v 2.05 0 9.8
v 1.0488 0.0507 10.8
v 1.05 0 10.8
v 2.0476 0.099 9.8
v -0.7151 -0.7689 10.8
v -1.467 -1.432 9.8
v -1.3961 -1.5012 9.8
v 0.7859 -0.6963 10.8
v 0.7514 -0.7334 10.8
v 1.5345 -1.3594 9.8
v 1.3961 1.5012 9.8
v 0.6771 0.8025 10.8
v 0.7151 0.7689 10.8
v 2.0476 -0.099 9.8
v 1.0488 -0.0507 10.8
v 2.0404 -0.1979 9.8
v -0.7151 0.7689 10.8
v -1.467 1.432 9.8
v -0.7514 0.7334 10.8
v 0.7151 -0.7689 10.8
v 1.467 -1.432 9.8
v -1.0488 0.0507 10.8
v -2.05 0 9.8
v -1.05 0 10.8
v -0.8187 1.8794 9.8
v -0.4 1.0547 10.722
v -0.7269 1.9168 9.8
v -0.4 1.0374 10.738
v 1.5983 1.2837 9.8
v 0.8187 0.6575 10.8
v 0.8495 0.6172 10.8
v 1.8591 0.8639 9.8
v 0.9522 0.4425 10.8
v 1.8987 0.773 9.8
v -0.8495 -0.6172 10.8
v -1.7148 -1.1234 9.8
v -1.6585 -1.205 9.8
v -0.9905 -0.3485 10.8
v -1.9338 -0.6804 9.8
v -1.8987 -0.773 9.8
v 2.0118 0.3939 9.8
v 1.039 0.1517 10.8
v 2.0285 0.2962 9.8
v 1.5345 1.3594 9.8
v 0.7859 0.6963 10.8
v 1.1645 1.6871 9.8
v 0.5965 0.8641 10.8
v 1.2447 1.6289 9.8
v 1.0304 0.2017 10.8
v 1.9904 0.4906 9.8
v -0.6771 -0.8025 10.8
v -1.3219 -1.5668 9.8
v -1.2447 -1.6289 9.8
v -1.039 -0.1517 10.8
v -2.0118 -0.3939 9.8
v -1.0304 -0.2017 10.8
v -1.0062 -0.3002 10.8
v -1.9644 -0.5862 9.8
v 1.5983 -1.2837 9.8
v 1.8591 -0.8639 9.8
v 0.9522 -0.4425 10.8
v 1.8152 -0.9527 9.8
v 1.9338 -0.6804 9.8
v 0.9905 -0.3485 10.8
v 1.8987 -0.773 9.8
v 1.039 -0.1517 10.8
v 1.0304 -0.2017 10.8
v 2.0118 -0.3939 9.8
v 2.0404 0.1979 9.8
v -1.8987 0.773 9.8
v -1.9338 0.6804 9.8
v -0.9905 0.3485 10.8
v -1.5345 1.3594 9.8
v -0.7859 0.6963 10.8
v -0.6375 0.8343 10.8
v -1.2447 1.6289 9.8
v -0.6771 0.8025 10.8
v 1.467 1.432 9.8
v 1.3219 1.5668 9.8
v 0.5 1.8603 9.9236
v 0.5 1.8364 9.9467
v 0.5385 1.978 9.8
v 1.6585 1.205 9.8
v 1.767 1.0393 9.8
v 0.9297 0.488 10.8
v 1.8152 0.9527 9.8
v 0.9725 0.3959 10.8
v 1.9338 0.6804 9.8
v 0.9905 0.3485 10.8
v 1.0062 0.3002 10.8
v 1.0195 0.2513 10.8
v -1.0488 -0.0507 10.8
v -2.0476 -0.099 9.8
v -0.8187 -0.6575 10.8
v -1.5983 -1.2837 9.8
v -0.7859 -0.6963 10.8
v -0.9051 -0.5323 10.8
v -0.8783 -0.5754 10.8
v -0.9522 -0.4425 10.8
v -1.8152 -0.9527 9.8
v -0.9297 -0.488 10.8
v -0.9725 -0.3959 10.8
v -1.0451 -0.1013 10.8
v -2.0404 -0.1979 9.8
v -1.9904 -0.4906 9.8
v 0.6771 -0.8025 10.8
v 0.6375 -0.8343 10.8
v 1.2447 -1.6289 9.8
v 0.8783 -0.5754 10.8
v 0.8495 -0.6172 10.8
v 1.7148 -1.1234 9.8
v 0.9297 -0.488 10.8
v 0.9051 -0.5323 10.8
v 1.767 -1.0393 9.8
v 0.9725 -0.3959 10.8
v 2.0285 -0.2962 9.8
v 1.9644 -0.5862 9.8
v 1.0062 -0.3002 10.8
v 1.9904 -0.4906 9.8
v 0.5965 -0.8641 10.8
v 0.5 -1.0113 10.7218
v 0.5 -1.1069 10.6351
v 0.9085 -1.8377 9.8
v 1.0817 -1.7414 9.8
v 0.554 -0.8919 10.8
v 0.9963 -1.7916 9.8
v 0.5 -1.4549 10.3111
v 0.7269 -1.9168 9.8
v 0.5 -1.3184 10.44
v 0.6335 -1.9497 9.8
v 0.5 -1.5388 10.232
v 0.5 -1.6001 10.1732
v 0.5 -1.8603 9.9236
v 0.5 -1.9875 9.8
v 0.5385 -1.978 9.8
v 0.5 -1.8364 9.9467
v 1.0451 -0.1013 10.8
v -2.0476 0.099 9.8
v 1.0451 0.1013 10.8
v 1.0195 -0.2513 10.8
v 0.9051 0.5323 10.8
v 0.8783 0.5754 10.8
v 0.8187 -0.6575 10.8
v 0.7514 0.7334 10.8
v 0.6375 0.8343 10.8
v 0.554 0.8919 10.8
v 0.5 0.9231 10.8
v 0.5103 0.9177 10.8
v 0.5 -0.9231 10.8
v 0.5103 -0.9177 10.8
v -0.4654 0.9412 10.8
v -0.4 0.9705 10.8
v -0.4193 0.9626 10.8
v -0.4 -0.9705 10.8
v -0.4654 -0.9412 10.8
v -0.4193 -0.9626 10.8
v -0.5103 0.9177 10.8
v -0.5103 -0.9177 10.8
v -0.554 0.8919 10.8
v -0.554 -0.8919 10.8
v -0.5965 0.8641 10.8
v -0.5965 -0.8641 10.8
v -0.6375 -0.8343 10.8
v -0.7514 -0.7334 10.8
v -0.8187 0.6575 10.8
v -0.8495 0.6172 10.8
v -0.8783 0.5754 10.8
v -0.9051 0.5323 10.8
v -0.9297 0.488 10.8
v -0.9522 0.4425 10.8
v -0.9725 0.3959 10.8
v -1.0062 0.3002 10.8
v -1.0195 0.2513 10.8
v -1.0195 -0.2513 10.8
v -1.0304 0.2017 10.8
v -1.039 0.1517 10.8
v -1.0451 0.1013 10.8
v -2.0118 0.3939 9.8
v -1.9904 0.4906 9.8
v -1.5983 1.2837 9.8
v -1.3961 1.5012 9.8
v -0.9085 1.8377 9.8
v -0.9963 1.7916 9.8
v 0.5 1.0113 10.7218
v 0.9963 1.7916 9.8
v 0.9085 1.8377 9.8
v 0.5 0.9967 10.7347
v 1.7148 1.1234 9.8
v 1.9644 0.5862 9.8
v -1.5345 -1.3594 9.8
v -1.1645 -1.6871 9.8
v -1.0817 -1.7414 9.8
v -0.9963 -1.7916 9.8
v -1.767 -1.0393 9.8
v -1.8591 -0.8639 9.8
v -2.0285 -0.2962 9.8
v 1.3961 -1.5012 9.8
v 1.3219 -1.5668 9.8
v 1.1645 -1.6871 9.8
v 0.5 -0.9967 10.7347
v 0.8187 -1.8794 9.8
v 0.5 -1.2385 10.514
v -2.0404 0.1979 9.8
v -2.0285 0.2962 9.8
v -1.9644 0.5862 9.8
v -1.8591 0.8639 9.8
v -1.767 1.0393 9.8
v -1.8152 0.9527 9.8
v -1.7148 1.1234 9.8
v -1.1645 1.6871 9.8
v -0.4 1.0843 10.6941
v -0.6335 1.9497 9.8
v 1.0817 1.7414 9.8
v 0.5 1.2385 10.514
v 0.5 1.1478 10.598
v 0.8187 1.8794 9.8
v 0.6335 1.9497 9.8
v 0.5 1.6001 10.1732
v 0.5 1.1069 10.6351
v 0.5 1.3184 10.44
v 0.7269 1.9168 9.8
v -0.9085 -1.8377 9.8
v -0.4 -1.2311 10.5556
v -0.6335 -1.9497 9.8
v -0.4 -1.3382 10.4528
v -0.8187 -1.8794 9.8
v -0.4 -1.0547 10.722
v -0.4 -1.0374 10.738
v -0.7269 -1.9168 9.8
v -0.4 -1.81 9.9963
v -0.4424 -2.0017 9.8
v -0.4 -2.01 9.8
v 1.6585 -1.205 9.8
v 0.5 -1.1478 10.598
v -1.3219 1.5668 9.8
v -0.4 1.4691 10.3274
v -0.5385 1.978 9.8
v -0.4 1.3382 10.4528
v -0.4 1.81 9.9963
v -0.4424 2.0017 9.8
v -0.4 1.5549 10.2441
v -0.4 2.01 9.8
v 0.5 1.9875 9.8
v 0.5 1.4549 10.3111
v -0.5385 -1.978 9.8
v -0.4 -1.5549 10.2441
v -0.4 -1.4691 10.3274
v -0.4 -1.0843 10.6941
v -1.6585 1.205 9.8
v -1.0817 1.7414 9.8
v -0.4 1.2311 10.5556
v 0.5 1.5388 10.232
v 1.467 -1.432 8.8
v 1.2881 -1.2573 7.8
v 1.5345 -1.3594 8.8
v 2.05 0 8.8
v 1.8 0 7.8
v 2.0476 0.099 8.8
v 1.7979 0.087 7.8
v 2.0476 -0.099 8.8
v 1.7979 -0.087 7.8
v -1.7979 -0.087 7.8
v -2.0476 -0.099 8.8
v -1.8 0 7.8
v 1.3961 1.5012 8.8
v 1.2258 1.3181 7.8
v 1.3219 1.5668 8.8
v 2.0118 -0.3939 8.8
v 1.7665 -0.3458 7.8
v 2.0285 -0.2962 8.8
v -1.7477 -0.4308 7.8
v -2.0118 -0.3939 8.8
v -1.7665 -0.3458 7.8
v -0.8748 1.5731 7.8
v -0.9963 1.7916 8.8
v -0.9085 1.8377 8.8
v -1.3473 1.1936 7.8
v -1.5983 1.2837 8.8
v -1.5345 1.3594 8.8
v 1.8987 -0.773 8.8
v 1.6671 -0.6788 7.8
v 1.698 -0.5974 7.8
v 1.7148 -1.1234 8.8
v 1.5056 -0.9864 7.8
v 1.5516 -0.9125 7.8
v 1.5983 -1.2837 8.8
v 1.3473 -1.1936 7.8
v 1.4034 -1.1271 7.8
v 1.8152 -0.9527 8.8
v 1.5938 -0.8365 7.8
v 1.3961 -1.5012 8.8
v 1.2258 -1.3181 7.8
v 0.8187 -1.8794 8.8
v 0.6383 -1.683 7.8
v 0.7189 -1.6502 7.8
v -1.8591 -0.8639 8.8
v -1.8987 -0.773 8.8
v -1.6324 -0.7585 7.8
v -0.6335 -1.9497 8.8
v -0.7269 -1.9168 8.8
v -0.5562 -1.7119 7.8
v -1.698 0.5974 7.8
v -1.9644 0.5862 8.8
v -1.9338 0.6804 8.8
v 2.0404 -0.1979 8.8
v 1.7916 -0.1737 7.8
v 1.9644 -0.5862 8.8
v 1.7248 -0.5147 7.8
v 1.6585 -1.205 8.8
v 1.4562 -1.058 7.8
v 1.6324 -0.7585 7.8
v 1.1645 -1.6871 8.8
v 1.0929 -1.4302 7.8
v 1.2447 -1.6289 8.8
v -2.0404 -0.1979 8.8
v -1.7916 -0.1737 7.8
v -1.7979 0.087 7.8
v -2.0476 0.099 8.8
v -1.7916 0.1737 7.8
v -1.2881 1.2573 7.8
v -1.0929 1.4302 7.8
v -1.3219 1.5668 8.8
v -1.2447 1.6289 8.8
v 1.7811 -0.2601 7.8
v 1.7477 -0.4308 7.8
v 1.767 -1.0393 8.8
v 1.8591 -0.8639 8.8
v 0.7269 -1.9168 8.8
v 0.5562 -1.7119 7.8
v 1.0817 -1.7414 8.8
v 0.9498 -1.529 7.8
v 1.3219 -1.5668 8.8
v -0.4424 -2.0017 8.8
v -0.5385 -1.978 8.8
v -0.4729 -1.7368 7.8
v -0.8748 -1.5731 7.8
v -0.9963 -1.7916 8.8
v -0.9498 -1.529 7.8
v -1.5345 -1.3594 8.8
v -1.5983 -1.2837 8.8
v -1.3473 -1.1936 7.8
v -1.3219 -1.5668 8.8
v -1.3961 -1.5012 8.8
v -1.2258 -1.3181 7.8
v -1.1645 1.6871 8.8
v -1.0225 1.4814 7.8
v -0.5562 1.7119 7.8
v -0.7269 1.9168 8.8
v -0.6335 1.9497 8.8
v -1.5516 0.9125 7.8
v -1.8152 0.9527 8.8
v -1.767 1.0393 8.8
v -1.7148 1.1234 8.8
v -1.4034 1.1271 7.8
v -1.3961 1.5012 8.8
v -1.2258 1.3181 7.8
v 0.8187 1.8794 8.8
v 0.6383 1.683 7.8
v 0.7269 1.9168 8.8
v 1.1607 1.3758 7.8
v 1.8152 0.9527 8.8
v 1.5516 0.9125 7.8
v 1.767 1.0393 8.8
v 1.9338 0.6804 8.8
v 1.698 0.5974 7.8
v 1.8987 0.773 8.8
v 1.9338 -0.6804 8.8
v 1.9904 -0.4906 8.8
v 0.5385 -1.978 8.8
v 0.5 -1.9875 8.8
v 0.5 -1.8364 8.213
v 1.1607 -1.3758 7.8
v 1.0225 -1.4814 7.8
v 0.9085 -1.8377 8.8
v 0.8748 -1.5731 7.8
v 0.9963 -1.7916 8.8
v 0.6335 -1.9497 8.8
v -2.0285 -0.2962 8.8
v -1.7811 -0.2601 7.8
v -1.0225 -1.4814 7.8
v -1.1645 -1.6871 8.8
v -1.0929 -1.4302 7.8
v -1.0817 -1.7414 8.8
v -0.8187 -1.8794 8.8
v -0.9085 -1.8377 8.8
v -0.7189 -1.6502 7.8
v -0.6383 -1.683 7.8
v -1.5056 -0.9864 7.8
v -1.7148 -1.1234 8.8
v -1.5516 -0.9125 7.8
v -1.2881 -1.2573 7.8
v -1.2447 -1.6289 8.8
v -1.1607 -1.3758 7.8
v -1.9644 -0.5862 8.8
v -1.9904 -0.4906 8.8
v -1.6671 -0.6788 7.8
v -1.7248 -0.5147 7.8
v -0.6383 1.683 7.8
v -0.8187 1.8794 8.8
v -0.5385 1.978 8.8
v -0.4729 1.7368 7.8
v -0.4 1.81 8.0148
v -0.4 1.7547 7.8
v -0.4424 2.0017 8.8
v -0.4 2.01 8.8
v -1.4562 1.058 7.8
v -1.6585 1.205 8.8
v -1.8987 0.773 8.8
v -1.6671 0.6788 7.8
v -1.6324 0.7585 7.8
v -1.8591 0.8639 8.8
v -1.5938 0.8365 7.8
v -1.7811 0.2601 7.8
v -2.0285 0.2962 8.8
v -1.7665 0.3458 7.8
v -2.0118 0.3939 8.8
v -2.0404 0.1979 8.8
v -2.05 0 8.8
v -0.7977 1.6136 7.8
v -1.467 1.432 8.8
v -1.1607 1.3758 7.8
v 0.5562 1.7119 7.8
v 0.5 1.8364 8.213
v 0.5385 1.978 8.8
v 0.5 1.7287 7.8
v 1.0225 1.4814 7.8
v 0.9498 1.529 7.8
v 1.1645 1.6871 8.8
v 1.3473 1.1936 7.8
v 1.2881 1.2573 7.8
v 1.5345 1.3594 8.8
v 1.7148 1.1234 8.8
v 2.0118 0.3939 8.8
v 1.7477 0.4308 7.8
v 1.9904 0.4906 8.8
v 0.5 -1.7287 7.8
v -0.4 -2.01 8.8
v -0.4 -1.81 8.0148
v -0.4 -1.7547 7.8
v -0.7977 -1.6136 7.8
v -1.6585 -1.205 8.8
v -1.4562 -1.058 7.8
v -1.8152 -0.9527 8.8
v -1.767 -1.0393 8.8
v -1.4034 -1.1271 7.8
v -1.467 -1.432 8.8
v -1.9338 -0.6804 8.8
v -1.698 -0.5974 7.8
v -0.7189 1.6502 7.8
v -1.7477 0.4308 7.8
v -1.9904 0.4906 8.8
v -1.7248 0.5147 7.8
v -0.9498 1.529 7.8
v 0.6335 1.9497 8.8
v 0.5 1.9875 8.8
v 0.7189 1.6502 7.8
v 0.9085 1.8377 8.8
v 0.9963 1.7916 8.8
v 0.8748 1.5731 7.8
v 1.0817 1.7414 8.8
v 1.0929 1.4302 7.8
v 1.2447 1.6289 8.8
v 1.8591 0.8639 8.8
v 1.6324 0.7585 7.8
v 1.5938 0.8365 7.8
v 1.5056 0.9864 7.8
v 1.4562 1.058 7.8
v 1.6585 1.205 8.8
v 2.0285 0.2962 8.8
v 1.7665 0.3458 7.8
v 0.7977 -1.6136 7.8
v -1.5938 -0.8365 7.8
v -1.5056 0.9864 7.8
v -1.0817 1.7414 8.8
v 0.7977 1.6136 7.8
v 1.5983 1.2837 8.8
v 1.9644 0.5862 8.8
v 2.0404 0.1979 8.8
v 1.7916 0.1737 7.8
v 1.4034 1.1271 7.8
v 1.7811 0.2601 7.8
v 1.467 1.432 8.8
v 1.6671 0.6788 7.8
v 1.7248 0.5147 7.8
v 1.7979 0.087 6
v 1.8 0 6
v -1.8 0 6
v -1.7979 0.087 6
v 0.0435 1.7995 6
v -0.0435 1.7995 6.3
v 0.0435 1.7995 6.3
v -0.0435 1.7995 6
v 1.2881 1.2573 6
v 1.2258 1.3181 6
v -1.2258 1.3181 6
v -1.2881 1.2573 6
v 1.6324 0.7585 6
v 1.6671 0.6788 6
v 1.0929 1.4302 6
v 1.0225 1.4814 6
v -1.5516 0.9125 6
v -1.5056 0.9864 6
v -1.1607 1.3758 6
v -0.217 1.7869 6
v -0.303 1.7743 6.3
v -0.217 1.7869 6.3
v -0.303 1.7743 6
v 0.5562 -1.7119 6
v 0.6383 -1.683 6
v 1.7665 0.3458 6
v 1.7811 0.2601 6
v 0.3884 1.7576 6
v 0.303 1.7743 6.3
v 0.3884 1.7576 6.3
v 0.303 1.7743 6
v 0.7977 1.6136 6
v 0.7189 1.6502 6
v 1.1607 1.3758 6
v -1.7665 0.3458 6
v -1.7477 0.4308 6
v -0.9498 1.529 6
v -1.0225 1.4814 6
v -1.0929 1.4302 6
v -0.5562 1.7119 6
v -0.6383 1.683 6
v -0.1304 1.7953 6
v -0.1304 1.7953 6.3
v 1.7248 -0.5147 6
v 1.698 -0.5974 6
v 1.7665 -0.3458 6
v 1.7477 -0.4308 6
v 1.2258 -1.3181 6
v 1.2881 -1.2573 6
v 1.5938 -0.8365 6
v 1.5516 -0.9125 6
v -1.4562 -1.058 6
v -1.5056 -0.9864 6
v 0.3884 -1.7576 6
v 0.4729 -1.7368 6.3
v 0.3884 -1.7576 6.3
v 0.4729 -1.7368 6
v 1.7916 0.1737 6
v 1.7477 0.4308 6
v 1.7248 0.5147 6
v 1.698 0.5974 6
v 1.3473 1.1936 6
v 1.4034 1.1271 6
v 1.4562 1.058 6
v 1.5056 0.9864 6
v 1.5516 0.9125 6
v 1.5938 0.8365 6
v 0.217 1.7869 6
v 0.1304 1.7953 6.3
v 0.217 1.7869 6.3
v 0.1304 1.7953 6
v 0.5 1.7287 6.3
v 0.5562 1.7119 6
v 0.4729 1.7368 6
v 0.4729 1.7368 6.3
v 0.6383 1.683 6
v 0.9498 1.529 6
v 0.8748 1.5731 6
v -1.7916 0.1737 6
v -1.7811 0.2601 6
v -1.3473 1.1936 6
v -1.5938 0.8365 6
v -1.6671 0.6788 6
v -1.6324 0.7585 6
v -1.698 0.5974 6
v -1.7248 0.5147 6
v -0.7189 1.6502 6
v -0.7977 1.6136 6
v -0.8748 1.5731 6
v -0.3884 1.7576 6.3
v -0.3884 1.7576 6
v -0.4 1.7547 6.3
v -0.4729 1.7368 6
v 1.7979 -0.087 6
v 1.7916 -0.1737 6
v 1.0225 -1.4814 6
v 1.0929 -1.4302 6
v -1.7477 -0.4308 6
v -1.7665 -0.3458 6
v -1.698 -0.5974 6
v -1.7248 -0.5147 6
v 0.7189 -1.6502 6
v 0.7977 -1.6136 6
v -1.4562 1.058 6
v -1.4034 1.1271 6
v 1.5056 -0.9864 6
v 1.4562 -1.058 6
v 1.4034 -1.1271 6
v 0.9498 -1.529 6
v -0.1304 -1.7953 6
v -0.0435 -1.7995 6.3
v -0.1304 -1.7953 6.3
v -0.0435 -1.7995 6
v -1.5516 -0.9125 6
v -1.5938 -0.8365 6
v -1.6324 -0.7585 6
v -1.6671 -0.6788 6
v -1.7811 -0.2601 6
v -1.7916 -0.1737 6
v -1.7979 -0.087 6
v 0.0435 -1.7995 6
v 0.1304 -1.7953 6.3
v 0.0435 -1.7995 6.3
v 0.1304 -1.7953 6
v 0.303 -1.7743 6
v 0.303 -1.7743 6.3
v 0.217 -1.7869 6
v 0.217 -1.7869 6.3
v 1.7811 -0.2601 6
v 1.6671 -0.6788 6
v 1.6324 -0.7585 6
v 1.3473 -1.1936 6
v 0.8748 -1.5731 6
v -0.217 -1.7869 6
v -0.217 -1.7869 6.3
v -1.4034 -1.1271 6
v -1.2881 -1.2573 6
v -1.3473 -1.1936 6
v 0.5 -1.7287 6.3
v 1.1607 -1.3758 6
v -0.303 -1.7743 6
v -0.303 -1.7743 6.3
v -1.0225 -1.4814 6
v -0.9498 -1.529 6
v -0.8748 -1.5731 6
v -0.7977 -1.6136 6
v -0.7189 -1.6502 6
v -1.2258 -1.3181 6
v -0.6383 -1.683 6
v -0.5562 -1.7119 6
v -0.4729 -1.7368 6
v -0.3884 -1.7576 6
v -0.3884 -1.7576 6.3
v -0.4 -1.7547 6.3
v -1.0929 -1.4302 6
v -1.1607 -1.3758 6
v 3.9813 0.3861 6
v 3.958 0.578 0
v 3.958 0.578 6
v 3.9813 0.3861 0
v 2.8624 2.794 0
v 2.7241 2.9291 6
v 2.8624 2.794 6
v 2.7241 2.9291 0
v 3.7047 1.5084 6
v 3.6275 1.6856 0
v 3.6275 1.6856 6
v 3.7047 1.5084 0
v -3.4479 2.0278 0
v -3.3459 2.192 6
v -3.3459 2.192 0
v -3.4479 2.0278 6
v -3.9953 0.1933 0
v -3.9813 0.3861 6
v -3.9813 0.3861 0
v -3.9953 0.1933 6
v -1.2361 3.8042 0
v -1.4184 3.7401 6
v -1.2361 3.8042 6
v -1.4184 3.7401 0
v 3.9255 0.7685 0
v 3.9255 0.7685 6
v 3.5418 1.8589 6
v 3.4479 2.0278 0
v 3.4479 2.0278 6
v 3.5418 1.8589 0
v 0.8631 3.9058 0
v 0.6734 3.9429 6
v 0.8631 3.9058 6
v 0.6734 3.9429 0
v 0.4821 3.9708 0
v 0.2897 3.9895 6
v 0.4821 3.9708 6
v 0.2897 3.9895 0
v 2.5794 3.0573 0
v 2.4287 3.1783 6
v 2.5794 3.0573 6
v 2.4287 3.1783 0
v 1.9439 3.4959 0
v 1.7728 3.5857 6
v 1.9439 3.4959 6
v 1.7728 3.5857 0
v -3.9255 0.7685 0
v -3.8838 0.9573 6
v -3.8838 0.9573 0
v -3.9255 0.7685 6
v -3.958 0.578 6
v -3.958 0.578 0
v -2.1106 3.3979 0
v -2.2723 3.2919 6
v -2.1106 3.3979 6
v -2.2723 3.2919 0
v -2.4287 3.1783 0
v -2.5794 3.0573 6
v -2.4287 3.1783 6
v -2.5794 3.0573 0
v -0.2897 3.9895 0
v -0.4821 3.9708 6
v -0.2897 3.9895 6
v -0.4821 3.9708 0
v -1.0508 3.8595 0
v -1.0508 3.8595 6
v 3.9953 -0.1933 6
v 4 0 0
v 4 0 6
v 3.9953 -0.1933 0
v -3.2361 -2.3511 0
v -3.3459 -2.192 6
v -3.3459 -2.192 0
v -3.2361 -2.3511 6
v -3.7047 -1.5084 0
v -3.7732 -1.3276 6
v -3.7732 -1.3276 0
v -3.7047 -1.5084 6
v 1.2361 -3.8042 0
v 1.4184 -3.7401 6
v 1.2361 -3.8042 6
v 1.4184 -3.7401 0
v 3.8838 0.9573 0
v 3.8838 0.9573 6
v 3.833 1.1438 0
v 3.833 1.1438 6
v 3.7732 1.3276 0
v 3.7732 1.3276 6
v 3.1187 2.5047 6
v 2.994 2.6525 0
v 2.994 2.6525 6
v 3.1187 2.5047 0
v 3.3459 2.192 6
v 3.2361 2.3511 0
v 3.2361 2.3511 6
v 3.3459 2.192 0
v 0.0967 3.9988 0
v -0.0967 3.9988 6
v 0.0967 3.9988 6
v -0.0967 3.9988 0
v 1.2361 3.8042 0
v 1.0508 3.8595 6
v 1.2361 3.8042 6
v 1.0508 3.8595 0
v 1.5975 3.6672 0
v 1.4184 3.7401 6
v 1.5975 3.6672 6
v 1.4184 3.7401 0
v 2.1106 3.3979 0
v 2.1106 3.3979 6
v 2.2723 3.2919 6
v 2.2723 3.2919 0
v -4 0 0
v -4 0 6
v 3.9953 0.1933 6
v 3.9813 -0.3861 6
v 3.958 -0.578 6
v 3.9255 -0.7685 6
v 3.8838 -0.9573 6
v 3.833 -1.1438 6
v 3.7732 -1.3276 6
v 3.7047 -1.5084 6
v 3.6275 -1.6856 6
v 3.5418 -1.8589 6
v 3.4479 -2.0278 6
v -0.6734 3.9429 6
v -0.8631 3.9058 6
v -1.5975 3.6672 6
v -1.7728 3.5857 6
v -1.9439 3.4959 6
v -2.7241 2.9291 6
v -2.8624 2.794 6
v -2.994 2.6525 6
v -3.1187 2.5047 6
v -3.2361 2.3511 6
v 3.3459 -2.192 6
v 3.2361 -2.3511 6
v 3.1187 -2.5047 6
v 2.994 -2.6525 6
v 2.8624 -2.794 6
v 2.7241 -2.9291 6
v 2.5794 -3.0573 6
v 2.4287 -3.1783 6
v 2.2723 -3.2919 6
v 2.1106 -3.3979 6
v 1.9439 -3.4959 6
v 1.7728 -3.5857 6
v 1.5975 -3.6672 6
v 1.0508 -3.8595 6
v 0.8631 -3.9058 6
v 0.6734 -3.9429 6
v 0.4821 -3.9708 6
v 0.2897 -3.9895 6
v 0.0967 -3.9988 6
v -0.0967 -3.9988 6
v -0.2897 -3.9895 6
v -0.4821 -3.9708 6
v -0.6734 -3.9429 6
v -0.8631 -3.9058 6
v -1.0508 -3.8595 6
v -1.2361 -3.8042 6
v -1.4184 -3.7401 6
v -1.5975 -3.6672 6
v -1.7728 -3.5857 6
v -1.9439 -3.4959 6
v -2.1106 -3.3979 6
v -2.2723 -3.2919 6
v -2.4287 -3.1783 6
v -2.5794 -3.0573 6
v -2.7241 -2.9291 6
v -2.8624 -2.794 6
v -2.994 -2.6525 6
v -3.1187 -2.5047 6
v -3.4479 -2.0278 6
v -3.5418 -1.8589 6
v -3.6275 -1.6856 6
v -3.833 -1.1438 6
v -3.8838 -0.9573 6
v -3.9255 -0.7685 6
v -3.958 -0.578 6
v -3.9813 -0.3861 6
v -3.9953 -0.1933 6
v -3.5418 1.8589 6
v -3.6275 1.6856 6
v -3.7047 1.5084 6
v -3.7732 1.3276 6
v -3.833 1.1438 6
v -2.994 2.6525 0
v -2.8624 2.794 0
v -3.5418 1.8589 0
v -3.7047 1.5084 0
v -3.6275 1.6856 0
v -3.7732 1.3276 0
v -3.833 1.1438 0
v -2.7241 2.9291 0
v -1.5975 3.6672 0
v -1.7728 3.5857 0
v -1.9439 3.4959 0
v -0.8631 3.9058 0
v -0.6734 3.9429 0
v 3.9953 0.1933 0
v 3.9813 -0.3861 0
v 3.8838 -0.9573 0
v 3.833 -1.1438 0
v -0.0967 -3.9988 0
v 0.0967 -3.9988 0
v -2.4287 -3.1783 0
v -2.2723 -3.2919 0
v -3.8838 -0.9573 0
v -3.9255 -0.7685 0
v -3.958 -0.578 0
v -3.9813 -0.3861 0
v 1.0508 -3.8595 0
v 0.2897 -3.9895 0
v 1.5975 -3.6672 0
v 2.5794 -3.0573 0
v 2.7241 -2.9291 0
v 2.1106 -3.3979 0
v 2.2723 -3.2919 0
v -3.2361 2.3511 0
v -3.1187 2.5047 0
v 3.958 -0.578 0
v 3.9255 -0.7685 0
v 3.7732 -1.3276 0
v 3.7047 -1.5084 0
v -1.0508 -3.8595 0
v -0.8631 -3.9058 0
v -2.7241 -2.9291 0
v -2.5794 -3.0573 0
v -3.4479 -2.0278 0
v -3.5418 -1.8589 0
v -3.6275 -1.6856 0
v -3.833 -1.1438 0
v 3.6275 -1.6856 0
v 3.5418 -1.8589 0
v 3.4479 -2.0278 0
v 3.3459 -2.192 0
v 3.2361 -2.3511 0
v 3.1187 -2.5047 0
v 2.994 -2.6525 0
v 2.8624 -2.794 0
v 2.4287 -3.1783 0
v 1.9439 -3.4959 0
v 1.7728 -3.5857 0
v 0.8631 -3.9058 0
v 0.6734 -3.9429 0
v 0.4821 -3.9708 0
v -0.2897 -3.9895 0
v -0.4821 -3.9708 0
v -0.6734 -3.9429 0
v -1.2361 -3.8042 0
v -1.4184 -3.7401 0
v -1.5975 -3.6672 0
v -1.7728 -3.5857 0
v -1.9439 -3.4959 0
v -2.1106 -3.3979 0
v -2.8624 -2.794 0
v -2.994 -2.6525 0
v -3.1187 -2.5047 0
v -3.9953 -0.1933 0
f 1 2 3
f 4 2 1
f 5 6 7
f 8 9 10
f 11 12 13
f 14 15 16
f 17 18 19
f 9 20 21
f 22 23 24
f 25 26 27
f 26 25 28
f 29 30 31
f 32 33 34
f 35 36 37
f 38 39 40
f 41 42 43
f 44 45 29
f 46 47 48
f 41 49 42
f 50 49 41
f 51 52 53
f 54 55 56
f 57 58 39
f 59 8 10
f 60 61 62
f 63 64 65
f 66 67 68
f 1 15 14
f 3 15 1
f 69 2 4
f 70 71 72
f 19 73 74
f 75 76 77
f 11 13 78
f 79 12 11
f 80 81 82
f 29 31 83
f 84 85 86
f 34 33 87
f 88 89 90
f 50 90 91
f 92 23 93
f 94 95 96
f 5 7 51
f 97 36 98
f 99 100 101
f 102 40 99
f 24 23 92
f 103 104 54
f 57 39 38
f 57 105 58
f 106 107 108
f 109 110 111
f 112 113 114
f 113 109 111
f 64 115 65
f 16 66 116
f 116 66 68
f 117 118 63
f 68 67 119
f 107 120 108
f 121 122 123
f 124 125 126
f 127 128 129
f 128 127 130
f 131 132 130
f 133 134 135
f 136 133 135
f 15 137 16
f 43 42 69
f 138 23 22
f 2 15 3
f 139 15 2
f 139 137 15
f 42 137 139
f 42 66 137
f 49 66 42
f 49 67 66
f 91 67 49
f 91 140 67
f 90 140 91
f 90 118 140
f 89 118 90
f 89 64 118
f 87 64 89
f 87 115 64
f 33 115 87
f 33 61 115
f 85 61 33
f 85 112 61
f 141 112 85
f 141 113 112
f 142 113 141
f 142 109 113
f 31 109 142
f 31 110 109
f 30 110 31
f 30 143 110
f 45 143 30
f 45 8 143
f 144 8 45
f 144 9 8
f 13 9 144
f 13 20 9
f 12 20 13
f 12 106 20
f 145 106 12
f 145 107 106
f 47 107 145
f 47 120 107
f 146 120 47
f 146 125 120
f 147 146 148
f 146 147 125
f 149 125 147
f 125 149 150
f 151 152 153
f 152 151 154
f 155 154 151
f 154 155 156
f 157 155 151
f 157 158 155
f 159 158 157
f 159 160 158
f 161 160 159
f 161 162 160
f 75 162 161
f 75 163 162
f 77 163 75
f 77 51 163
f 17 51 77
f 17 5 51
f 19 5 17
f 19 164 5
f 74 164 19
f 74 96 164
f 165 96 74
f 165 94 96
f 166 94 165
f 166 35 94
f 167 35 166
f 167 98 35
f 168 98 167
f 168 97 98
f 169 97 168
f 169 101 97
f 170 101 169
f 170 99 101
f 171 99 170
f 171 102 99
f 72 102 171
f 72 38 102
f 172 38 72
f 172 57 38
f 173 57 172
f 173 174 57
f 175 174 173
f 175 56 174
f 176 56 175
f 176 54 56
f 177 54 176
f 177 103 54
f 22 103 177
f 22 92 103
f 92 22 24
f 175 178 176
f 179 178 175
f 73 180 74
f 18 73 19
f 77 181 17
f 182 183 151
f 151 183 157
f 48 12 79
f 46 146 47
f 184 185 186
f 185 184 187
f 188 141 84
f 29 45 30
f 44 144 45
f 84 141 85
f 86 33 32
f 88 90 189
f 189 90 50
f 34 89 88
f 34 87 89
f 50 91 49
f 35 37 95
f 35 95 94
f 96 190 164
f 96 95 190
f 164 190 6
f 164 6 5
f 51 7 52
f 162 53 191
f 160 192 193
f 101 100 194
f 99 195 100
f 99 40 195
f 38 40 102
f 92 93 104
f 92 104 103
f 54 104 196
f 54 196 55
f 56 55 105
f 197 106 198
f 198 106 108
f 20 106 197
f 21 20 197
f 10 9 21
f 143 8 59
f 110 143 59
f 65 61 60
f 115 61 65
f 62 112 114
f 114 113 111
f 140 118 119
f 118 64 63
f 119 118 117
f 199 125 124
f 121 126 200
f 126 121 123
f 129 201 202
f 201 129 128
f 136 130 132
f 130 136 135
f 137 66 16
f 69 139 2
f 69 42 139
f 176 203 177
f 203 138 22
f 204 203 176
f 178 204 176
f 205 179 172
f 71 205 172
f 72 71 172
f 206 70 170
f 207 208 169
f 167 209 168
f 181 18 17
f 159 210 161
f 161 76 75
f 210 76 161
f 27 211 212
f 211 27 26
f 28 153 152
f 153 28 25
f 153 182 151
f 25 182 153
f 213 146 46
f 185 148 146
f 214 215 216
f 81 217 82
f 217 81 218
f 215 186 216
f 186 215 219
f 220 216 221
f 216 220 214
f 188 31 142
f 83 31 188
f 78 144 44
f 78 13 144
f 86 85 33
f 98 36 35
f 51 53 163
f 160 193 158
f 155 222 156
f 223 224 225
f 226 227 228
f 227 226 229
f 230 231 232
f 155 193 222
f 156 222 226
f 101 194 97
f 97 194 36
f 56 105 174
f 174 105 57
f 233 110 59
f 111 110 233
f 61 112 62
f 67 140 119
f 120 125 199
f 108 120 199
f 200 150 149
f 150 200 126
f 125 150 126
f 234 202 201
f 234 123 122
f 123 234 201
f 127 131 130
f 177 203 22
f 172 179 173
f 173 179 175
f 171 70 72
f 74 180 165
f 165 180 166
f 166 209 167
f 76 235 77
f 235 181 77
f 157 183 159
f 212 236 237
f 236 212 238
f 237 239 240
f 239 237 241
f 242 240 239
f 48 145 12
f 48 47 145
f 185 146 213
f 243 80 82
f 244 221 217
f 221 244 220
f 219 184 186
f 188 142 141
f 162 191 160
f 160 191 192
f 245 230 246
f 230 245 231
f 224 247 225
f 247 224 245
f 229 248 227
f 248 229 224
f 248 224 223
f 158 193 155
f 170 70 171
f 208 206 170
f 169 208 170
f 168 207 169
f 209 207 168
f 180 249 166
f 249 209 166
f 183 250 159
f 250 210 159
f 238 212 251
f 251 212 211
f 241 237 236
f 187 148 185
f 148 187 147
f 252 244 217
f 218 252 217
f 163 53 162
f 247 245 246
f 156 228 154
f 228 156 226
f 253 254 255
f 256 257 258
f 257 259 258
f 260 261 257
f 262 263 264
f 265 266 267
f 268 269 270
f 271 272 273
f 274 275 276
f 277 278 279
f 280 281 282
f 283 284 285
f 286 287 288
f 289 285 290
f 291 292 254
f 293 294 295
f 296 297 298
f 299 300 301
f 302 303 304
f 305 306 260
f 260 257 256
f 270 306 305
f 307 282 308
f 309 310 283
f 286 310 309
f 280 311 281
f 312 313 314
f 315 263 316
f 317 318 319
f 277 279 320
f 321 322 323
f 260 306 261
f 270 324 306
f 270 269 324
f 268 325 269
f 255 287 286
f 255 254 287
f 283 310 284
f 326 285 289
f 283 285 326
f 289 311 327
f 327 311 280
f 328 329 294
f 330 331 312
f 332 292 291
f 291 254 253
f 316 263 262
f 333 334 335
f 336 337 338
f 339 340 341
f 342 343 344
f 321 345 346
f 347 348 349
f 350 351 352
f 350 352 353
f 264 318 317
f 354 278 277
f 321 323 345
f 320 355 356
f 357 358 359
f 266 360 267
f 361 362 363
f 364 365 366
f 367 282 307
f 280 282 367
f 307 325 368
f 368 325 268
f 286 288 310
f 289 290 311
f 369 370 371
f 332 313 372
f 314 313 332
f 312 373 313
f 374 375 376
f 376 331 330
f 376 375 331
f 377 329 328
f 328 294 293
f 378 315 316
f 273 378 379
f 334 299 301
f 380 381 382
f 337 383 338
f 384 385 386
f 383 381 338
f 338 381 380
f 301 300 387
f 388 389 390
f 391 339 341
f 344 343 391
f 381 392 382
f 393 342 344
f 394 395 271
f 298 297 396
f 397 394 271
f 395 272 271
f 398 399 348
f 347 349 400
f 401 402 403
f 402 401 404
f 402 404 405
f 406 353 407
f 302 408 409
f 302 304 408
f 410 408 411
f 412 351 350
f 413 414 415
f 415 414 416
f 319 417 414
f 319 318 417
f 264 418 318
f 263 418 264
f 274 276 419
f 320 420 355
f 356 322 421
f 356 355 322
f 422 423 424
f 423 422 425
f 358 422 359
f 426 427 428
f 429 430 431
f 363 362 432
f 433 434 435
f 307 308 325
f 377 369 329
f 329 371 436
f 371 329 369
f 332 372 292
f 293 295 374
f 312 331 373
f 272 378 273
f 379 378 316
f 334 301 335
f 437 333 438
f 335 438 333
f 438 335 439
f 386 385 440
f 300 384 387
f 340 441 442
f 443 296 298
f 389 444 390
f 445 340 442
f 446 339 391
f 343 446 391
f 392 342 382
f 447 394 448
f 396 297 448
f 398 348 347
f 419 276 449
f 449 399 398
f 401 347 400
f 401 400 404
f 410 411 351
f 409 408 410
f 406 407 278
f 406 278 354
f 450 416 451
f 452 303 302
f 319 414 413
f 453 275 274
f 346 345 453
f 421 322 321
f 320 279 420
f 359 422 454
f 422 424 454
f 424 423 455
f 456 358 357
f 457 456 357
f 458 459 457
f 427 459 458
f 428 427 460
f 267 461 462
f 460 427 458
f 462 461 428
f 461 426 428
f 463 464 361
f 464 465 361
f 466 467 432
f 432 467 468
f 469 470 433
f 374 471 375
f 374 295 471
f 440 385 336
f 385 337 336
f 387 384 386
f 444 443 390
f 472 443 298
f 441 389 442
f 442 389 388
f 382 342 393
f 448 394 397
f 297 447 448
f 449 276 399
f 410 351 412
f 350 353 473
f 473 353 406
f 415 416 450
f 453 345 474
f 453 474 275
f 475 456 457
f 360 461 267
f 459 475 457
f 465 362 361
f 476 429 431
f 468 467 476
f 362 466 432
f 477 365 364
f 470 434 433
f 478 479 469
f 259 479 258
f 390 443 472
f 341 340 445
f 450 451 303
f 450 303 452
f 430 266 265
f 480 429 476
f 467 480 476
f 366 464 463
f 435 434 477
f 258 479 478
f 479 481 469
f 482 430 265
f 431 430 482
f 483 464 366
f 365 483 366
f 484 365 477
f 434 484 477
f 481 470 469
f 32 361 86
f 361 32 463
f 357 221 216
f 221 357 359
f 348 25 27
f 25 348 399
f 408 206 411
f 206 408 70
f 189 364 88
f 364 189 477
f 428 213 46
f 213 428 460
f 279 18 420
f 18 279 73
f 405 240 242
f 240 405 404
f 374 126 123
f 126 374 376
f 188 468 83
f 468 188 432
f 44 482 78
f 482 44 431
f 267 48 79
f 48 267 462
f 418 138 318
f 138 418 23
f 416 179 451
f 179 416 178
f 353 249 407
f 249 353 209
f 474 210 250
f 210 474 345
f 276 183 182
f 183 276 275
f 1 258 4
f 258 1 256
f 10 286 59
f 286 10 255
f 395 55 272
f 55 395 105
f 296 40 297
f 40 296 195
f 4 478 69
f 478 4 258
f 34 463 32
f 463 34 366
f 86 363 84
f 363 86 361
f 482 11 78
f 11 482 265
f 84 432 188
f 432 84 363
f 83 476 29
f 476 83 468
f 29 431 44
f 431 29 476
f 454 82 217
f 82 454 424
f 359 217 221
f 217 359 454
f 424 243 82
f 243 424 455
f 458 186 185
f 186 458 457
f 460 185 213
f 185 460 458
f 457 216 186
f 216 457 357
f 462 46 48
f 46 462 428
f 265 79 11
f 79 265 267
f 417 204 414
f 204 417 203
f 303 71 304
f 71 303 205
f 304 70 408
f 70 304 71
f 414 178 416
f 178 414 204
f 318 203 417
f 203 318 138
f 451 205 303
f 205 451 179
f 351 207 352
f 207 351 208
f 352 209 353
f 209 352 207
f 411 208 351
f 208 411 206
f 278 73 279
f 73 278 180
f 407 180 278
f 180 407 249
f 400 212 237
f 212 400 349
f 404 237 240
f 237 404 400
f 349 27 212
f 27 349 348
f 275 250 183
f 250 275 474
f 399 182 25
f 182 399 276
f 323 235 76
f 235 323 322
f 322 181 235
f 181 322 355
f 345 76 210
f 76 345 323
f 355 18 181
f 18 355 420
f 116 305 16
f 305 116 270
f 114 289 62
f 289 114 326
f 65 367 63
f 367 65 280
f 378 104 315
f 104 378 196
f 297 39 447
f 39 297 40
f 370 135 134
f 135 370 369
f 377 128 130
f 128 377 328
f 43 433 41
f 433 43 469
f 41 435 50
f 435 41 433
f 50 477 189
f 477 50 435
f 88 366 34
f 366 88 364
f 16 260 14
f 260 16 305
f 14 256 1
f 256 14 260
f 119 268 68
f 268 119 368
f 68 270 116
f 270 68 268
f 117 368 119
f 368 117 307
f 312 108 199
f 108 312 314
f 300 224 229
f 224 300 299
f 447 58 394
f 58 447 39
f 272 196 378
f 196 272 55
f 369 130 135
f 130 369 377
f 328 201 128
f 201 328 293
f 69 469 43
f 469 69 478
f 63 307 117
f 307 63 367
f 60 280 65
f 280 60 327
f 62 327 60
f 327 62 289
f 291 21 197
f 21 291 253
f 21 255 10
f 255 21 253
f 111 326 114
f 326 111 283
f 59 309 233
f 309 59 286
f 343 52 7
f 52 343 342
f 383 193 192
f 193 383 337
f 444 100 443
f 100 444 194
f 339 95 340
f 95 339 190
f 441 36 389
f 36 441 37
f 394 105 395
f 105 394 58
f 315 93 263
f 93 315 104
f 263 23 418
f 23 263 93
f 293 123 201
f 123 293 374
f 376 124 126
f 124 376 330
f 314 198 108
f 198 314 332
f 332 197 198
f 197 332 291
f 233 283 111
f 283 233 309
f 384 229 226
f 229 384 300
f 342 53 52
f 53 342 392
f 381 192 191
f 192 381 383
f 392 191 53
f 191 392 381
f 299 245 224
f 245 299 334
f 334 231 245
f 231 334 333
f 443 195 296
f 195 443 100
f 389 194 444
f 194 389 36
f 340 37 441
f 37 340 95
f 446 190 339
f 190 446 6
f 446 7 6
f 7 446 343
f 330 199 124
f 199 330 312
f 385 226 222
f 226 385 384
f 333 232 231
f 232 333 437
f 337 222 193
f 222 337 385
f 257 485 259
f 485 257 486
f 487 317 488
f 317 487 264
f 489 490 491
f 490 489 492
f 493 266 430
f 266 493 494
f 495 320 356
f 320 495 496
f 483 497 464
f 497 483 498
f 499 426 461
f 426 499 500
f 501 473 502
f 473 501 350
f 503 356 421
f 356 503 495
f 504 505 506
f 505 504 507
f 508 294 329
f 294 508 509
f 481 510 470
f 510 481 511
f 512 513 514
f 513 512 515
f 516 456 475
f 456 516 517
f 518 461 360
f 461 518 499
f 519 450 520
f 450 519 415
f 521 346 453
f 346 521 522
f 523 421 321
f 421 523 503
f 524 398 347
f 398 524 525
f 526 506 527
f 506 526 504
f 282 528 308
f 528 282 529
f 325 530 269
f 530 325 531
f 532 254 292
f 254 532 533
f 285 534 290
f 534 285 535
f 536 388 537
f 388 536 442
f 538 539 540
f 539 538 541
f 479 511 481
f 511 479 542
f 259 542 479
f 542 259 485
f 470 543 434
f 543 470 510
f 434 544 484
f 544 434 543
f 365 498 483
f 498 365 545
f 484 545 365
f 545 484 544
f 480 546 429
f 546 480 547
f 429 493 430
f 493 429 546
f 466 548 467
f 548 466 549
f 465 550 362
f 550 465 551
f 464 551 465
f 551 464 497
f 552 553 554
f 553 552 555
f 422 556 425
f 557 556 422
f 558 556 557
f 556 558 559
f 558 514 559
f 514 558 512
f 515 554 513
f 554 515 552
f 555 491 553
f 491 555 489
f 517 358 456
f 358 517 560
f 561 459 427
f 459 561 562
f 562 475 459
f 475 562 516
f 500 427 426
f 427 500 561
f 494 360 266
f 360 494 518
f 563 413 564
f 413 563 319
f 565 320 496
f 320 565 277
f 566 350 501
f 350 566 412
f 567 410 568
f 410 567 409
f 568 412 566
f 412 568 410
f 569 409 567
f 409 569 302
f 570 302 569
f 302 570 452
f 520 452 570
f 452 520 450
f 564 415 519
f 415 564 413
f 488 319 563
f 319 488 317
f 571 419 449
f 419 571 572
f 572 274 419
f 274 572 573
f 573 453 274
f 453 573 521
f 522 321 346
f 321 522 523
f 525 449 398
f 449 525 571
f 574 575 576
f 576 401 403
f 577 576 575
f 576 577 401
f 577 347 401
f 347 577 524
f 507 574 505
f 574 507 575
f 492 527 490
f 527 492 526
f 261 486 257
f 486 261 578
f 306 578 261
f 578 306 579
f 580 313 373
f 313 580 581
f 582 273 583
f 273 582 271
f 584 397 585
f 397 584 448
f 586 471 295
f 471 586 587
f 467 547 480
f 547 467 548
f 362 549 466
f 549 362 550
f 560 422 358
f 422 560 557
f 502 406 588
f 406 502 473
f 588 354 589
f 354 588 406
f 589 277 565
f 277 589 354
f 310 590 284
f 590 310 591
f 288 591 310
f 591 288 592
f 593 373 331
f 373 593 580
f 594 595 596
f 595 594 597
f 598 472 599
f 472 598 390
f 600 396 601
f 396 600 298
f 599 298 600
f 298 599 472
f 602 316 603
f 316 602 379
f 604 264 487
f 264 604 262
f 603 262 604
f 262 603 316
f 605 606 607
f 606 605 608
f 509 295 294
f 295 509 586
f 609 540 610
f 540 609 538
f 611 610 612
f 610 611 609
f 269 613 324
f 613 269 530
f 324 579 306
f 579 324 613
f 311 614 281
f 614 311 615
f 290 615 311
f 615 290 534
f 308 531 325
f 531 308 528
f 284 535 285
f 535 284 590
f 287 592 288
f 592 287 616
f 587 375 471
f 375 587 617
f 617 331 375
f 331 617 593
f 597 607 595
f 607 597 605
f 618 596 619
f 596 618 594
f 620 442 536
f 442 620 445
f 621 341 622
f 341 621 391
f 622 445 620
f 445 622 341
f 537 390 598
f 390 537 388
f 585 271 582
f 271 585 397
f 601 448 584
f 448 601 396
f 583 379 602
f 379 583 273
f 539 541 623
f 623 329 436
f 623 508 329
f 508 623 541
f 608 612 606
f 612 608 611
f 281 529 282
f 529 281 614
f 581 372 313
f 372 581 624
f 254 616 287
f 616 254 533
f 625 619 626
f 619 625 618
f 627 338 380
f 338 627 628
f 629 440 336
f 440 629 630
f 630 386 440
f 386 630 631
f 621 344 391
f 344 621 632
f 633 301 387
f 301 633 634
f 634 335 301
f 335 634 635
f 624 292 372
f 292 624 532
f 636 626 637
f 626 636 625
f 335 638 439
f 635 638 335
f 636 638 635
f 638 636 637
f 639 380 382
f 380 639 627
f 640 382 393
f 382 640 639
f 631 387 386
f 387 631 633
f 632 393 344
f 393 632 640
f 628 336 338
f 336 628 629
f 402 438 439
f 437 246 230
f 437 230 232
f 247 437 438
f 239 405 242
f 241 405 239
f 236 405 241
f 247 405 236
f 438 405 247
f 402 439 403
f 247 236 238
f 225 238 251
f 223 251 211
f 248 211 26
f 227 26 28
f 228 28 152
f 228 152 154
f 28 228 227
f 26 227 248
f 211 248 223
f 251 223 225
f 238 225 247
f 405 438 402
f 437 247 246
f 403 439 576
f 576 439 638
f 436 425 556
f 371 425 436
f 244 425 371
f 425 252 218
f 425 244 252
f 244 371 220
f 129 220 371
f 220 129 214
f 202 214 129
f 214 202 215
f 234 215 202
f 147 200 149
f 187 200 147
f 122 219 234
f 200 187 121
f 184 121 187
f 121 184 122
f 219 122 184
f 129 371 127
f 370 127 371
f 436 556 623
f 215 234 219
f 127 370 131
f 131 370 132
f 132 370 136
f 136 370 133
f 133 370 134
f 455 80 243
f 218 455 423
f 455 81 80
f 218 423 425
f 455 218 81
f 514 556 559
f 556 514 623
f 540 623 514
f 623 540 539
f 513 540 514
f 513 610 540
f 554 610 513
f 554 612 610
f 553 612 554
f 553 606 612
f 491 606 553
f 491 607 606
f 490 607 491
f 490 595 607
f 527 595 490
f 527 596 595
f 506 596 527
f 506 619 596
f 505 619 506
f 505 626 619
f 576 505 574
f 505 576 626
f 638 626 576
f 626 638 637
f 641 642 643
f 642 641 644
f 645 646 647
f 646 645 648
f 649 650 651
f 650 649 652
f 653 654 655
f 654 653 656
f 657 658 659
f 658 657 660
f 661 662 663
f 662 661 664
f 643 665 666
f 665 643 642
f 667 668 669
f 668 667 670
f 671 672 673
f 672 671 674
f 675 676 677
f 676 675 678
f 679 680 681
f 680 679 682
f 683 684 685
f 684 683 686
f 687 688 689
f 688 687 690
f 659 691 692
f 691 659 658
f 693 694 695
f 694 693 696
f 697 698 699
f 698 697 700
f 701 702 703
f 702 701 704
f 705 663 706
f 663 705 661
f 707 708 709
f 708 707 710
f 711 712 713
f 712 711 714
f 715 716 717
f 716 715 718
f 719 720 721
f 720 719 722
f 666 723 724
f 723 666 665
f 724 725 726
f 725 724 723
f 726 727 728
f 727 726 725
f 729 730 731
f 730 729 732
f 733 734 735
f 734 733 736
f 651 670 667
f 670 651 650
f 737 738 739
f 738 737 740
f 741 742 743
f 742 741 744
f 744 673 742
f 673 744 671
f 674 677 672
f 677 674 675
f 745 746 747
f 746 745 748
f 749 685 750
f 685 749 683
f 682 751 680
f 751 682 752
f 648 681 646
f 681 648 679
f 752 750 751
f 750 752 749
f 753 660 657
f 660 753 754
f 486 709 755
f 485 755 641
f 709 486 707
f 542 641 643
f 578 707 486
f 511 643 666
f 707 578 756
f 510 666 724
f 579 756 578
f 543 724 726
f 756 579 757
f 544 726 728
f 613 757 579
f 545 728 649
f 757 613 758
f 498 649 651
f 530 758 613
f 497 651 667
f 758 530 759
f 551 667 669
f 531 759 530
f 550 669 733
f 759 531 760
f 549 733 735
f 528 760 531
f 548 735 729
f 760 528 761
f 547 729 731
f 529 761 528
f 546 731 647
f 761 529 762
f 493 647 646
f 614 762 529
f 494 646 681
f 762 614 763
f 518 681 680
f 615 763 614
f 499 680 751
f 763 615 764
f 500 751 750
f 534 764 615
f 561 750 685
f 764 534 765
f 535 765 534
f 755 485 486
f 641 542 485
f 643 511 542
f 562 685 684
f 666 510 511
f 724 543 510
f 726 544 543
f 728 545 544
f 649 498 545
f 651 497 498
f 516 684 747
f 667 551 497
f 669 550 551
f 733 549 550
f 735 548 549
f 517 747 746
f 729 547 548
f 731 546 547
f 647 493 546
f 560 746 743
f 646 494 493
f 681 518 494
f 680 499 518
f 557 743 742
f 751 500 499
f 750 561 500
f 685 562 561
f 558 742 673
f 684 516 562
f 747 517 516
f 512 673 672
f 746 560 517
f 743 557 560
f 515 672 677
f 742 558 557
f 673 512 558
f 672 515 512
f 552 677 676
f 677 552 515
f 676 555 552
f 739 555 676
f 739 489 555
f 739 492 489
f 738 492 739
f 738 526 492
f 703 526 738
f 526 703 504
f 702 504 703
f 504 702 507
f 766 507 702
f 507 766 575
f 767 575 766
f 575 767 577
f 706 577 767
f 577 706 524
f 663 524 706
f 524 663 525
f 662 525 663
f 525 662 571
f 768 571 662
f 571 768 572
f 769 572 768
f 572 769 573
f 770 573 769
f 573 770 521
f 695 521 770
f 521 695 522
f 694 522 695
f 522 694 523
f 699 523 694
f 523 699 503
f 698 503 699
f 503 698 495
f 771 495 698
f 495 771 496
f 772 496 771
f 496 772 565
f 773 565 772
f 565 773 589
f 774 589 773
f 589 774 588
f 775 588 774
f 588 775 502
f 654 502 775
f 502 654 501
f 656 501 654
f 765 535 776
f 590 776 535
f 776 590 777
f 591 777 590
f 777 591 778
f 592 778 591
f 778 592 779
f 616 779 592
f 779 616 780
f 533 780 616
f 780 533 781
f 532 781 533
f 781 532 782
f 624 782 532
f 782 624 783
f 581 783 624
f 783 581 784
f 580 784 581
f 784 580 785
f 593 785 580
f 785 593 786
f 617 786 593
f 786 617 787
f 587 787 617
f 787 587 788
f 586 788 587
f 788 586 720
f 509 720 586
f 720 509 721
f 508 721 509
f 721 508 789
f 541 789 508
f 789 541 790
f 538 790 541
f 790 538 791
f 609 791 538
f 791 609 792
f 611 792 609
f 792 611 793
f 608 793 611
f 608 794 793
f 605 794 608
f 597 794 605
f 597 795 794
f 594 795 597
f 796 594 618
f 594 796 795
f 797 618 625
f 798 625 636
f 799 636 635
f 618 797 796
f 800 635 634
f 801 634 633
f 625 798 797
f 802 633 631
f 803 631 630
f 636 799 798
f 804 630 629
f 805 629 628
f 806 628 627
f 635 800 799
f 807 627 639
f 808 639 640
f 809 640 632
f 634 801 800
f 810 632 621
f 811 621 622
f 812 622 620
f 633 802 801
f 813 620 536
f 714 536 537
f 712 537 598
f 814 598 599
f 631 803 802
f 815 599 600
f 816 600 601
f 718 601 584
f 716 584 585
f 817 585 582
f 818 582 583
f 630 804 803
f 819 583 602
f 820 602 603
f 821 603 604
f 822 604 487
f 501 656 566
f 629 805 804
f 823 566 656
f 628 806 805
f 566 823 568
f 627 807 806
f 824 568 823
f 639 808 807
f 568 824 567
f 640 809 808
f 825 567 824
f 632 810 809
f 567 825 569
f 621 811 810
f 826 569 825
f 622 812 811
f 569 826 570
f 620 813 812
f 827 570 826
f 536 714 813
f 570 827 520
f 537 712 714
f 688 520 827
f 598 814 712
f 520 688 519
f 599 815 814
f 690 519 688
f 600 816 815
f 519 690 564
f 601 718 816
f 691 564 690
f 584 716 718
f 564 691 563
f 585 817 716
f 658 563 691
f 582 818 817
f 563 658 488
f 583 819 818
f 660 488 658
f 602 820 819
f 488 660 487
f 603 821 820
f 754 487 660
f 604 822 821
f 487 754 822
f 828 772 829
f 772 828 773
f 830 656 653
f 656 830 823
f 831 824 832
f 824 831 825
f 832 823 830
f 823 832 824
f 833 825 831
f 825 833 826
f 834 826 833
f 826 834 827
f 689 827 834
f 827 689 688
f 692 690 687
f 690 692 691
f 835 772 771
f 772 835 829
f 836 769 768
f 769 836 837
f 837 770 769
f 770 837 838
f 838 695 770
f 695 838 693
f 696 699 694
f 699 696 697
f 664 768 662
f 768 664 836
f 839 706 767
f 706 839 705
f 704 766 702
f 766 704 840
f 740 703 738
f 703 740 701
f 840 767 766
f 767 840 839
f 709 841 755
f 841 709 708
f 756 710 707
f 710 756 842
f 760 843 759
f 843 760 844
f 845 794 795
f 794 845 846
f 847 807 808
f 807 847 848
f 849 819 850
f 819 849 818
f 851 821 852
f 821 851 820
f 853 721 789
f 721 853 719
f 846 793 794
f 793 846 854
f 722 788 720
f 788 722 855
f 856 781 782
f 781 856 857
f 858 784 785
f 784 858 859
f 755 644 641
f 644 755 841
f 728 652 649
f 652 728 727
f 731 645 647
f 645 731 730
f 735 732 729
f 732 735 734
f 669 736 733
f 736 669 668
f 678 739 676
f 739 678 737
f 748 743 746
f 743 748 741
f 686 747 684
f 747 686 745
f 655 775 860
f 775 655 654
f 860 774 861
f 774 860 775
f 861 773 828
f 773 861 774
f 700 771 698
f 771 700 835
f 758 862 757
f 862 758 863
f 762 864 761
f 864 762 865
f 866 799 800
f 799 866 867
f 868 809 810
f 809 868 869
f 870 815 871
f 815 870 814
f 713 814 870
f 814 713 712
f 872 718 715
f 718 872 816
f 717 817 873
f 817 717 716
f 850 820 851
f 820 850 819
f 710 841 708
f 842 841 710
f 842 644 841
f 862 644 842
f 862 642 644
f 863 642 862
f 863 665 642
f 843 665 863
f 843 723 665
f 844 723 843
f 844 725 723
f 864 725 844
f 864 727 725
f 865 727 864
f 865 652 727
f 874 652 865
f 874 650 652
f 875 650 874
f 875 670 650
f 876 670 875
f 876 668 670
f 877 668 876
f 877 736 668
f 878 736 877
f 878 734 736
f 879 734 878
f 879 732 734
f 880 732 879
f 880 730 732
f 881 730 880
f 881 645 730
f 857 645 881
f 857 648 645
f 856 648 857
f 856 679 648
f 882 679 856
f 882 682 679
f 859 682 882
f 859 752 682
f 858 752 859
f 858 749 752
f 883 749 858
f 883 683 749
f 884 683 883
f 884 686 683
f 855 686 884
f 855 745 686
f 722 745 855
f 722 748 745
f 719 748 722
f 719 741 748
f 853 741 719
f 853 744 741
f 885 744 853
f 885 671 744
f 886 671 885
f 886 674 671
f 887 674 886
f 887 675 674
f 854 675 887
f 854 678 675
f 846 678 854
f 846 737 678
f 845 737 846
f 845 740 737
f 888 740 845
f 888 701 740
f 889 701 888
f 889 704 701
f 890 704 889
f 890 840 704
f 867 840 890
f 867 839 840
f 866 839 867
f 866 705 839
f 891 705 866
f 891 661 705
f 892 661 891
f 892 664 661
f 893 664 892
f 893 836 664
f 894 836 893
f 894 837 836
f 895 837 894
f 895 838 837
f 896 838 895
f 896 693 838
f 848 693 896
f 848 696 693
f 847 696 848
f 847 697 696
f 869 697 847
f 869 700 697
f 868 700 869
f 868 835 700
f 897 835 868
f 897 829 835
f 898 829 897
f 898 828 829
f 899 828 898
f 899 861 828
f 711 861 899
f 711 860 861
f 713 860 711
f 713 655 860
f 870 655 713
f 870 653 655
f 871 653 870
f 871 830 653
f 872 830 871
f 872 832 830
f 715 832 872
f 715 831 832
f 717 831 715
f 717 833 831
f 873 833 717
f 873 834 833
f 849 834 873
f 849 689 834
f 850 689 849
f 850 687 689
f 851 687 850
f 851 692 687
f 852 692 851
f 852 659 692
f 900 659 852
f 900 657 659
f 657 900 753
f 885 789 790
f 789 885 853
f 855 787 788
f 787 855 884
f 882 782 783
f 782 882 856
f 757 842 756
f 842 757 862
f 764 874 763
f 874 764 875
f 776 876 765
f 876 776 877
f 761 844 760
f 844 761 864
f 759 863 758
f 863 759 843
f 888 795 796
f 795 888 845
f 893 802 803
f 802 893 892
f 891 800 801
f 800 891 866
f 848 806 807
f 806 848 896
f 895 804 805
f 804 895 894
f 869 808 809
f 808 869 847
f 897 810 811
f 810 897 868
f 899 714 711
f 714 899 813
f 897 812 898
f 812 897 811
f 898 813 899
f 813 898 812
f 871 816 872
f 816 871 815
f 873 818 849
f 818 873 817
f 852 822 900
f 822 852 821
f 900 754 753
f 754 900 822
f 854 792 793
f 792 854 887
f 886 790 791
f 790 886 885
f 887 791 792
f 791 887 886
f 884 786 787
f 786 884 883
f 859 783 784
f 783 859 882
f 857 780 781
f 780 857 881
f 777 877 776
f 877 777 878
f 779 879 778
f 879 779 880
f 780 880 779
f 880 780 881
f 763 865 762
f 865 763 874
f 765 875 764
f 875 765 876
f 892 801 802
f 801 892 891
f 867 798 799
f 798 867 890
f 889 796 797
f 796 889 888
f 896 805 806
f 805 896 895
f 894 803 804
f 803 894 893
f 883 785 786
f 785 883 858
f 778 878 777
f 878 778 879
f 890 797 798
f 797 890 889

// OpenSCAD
$fn=130;

D_sock=8;   //Sockeldurchmesser
D_knub=4.1; //Knubbeldurchmesser
H_sock=6;   //Sockelhöhe
H_knub=10.5   ;  //Knubbelhöhe 10 = Knuppelsockel=1.3mm
S_knub=0.5; //Schaftdurchmesser=Knubbeldurchmesser-0.5

//Sockel
H=H_sock-6;
color("SlateGray")
//color("WhiteSmoke")
translate([0,0,H*-1])
cylinder (h=H_sock, d=D_sock);

difference(){

//Knubbl
//color("SlateGray")
color("WhiteSmoke")    

union(){

translate([0,0,H_knub-0.7])
cylinder (h=1, d1=D_knub, d2=D_knub-2);

translate([0,0,H_knub-2.7])
cylinder (h=1, d1=D_knub-S_knub, d2=D_knub);

translate([0,0,H_knub-1.7])
cylinder (h=1, d1=D_knub, d2=D_knub);

//Schaft
translate([0,0,5.3])
cylinder (h=2.5, d=D_knub-S_knub);   
}


//Einschnitt
translate([-0.4,-2.5,6.3])
 cube([0.9,5,7]);
}

//Knuppel-Shaft messen V3 Höhe = 1.3mm
//translate([2,-3,6])
// cube([0.9,5,1.3]);
